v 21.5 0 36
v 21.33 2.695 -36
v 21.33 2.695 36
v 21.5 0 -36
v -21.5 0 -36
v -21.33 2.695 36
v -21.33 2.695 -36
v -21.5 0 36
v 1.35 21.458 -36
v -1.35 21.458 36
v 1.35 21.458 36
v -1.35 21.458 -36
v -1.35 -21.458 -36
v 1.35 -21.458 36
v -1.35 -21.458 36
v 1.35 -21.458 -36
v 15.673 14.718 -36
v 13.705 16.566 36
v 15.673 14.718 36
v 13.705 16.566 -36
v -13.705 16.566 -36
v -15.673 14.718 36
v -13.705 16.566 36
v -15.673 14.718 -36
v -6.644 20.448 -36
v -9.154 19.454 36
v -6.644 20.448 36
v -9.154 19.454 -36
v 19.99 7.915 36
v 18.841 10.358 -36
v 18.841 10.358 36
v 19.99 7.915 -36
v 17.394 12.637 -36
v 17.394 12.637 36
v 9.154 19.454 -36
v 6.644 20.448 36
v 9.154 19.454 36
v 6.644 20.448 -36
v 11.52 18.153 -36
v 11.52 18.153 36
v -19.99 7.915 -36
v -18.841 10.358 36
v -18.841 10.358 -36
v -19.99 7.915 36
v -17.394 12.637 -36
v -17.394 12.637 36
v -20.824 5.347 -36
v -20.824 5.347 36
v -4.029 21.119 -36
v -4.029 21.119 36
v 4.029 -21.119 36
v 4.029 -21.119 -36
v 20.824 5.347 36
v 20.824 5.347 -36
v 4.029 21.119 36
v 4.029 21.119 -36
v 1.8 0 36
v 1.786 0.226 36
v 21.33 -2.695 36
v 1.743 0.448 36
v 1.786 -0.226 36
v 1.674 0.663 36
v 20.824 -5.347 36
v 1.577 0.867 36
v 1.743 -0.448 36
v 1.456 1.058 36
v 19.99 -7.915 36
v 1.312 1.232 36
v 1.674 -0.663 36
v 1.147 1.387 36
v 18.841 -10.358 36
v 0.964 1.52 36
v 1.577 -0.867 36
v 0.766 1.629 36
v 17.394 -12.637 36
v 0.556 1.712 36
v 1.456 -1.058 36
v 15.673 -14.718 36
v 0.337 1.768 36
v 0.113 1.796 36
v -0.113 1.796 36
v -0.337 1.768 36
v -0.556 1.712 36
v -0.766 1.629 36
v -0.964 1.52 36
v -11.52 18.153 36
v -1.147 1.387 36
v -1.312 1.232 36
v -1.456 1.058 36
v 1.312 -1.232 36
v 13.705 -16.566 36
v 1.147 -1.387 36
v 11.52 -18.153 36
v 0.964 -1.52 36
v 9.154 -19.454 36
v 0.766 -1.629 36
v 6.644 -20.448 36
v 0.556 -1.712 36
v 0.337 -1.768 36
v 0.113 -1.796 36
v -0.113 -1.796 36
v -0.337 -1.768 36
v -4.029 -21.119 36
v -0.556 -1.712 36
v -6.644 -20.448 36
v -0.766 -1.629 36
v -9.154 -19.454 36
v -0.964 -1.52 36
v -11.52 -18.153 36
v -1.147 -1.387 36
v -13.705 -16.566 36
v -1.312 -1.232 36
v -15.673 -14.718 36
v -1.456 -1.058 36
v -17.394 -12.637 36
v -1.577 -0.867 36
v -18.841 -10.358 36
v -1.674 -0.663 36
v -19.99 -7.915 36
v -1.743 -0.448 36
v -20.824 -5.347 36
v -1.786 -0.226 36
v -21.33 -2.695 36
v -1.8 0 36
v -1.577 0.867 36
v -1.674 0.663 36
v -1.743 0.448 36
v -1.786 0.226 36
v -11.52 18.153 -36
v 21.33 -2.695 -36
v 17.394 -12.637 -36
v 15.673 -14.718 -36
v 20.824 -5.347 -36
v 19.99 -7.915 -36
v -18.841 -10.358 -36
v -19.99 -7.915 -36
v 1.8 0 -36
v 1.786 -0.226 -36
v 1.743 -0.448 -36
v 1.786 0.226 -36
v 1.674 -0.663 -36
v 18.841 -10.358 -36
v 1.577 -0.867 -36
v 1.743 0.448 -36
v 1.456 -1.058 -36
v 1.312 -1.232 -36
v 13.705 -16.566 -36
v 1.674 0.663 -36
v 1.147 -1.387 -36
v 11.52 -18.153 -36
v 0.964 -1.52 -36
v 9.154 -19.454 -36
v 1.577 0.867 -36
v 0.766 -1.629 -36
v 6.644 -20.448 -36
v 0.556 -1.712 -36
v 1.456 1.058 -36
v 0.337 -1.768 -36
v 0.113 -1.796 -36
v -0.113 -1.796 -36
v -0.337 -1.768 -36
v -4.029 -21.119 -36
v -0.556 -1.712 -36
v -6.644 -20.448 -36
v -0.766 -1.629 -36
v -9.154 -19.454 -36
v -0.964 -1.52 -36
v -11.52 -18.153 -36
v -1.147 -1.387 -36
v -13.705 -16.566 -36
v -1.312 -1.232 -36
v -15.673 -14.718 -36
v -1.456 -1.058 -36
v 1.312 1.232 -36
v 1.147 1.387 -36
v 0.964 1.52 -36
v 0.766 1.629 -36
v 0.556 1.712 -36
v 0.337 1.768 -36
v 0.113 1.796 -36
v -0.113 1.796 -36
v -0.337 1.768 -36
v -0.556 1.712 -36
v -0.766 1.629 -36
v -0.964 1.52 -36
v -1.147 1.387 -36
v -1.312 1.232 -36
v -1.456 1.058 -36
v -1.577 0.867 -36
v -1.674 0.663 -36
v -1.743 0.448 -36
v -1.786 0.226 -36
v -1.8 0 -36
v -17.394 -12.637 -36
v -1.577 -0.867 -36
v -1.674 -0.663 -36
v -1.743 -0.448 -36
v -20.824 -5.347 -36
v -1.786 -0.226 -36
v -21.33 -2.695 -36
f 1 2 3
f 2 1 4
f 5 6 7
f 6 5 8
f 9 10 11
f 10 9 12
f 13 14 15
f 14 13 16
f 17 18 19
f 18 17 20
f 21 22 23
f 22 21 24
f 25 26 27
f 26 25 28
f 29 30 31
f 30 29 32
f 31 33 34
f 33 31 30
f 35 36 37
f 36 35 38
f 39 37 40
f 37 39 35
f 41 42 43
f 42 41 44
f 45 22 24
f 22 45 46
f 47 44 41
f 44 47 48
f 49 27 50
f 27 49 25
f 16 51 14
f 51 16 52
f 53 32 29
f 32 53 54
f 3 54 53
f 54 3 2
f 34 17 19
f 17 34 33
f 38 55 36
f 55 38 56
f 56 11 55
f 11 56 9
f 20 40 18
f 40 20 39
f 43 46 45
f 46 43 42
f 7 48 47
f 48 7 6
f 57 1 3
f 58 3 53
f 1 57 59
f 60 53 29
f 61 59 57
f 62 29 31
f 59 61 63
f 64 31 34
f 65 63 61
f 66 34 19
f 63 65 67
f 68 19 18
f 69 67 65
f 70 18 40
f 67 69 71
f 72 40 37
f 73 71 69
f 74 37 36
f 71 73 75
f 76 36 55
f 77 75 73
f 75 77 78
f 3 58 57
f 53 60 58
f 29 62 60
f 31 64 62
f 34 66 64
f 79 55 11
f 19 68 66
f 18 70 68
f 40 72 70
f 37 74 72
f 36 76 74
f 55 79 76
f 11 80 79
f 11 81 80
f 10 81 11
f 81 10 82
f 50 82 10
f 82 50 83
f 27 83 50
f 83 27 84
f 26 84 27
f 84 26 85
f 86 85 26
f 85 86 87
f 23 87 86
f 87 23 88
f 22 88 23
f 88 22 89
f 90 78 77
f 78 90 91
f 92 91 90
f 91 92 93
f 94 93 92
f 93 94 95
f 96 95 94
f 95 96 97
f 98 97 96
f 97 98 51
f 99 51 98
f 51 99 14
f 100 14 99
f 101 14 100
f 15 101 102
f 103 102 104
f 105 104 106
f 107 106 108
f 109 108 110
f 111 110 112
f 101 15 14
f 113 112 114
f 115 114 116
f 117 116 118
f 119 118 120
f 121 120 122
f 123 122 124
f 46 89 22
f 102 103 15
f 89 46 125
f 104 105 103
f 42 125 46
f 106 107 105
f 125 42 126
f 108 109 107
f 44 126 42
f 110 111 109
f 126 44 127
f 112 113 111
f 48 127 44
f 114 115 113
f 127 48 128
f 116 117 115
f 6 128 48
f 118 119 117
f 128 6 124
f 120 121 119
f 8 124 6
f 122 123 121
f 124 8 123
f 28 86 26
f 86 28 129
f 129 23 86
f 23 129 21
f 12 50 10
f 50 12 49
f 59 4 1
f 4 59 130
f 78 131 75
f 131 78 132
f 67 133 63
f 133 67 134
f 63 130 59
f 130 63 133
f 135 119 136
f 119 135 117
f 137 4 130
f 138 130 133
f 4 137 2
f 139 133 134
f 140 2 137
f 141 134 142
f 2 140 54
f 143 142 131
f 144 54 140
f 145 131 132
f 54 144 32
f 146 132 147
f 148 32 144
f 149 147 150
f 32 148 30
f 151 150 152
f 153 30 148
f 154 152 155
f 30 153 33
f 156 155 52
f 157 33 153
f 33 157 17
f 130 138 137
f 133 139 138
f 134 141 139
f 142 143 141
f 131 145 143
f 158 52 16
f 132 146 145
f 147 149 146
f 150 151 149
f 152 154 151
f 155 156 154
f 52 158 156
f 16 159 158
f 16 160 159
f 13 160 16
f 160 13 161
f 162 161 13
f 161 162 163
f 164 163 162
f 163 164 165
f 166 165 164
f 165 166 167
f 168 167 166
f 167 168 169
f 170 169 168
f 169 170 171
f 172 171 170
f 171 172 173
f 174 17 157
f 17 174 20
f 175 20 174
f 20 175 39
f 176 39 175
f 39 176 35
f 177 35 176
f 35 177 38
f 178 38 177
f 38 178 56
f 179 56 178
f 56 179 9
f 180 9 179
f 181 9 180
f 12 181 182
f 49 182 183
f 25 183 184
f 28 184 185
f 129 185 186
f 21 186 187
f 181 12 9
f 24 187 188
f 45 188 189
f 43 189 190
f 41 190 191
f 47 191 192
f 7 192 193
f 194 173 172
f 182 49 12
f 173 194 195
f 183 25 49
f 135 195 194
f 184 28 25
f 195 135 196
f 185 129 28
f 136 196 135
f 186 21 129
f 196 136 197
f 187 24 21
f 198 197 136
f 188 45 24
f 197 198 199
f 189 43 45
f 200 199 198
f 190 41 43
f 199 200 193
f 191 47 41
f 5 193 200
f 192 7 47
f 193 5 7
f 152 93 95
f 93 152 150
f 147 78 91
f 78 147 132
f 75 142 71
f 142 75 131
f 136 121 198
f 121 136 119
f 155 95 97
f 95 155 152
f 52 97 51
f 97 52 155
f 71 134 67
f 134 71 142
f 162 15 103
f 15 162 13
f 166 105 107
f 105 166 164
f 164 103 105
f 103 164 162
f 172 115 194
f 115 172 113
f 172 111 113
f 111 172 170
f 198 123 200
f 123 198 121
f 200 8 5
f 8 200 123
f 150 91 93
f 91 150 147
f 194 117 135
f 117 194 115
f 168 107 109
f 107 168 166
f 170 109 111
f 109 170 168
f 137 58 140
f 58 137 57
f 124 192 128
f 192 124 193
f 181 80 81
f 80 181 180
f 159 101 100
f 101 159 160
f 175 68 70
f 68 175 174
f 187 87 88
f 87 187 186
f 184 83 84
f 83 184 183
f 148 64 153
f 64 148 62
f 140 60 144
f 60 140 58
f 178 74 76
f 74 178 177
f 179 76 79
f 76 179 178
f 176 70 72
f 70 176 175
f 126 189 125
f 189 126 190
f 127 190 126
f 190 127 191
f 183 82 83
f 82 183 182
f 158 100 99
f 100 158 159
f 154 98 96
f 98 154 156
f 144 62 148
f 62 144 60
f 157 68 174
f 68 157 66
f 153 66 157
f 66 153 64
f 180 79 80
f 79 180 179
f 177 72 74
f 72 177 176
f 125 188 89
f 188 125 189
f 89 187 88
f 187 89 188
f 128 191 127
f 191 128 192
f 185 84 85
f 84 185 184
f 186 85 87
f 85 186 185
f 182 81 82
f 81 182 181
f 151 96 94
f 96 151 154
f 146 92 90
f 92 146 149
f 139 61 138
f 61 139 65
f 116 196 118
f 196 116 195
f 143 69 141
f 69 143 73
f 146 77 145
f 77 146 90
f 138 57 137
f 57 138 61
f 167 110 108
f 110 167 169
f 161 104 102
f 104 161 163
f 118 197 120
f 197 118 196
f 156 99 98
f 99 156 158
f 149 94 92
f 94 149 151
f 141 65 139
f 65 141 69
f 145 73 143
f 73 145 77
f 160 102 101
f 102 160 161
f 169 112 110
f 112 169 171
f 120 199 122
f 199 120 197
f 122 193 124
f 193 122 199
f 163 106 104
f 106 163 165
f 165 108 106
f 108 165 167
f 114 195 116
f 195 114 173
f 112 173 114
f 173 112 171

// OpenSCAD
$fn = 50;


difference() {
	union() {
		translate(v = [0, 0, -36.0000000000]) {
			cylinder(h = 72, r = 21.5000000000);
		}
	}
	union() {
		translate(v = [0, 0, -100.0000000000]) {
			cylinder(h = 200, r = 1.8000000000);
		}
	}
}
